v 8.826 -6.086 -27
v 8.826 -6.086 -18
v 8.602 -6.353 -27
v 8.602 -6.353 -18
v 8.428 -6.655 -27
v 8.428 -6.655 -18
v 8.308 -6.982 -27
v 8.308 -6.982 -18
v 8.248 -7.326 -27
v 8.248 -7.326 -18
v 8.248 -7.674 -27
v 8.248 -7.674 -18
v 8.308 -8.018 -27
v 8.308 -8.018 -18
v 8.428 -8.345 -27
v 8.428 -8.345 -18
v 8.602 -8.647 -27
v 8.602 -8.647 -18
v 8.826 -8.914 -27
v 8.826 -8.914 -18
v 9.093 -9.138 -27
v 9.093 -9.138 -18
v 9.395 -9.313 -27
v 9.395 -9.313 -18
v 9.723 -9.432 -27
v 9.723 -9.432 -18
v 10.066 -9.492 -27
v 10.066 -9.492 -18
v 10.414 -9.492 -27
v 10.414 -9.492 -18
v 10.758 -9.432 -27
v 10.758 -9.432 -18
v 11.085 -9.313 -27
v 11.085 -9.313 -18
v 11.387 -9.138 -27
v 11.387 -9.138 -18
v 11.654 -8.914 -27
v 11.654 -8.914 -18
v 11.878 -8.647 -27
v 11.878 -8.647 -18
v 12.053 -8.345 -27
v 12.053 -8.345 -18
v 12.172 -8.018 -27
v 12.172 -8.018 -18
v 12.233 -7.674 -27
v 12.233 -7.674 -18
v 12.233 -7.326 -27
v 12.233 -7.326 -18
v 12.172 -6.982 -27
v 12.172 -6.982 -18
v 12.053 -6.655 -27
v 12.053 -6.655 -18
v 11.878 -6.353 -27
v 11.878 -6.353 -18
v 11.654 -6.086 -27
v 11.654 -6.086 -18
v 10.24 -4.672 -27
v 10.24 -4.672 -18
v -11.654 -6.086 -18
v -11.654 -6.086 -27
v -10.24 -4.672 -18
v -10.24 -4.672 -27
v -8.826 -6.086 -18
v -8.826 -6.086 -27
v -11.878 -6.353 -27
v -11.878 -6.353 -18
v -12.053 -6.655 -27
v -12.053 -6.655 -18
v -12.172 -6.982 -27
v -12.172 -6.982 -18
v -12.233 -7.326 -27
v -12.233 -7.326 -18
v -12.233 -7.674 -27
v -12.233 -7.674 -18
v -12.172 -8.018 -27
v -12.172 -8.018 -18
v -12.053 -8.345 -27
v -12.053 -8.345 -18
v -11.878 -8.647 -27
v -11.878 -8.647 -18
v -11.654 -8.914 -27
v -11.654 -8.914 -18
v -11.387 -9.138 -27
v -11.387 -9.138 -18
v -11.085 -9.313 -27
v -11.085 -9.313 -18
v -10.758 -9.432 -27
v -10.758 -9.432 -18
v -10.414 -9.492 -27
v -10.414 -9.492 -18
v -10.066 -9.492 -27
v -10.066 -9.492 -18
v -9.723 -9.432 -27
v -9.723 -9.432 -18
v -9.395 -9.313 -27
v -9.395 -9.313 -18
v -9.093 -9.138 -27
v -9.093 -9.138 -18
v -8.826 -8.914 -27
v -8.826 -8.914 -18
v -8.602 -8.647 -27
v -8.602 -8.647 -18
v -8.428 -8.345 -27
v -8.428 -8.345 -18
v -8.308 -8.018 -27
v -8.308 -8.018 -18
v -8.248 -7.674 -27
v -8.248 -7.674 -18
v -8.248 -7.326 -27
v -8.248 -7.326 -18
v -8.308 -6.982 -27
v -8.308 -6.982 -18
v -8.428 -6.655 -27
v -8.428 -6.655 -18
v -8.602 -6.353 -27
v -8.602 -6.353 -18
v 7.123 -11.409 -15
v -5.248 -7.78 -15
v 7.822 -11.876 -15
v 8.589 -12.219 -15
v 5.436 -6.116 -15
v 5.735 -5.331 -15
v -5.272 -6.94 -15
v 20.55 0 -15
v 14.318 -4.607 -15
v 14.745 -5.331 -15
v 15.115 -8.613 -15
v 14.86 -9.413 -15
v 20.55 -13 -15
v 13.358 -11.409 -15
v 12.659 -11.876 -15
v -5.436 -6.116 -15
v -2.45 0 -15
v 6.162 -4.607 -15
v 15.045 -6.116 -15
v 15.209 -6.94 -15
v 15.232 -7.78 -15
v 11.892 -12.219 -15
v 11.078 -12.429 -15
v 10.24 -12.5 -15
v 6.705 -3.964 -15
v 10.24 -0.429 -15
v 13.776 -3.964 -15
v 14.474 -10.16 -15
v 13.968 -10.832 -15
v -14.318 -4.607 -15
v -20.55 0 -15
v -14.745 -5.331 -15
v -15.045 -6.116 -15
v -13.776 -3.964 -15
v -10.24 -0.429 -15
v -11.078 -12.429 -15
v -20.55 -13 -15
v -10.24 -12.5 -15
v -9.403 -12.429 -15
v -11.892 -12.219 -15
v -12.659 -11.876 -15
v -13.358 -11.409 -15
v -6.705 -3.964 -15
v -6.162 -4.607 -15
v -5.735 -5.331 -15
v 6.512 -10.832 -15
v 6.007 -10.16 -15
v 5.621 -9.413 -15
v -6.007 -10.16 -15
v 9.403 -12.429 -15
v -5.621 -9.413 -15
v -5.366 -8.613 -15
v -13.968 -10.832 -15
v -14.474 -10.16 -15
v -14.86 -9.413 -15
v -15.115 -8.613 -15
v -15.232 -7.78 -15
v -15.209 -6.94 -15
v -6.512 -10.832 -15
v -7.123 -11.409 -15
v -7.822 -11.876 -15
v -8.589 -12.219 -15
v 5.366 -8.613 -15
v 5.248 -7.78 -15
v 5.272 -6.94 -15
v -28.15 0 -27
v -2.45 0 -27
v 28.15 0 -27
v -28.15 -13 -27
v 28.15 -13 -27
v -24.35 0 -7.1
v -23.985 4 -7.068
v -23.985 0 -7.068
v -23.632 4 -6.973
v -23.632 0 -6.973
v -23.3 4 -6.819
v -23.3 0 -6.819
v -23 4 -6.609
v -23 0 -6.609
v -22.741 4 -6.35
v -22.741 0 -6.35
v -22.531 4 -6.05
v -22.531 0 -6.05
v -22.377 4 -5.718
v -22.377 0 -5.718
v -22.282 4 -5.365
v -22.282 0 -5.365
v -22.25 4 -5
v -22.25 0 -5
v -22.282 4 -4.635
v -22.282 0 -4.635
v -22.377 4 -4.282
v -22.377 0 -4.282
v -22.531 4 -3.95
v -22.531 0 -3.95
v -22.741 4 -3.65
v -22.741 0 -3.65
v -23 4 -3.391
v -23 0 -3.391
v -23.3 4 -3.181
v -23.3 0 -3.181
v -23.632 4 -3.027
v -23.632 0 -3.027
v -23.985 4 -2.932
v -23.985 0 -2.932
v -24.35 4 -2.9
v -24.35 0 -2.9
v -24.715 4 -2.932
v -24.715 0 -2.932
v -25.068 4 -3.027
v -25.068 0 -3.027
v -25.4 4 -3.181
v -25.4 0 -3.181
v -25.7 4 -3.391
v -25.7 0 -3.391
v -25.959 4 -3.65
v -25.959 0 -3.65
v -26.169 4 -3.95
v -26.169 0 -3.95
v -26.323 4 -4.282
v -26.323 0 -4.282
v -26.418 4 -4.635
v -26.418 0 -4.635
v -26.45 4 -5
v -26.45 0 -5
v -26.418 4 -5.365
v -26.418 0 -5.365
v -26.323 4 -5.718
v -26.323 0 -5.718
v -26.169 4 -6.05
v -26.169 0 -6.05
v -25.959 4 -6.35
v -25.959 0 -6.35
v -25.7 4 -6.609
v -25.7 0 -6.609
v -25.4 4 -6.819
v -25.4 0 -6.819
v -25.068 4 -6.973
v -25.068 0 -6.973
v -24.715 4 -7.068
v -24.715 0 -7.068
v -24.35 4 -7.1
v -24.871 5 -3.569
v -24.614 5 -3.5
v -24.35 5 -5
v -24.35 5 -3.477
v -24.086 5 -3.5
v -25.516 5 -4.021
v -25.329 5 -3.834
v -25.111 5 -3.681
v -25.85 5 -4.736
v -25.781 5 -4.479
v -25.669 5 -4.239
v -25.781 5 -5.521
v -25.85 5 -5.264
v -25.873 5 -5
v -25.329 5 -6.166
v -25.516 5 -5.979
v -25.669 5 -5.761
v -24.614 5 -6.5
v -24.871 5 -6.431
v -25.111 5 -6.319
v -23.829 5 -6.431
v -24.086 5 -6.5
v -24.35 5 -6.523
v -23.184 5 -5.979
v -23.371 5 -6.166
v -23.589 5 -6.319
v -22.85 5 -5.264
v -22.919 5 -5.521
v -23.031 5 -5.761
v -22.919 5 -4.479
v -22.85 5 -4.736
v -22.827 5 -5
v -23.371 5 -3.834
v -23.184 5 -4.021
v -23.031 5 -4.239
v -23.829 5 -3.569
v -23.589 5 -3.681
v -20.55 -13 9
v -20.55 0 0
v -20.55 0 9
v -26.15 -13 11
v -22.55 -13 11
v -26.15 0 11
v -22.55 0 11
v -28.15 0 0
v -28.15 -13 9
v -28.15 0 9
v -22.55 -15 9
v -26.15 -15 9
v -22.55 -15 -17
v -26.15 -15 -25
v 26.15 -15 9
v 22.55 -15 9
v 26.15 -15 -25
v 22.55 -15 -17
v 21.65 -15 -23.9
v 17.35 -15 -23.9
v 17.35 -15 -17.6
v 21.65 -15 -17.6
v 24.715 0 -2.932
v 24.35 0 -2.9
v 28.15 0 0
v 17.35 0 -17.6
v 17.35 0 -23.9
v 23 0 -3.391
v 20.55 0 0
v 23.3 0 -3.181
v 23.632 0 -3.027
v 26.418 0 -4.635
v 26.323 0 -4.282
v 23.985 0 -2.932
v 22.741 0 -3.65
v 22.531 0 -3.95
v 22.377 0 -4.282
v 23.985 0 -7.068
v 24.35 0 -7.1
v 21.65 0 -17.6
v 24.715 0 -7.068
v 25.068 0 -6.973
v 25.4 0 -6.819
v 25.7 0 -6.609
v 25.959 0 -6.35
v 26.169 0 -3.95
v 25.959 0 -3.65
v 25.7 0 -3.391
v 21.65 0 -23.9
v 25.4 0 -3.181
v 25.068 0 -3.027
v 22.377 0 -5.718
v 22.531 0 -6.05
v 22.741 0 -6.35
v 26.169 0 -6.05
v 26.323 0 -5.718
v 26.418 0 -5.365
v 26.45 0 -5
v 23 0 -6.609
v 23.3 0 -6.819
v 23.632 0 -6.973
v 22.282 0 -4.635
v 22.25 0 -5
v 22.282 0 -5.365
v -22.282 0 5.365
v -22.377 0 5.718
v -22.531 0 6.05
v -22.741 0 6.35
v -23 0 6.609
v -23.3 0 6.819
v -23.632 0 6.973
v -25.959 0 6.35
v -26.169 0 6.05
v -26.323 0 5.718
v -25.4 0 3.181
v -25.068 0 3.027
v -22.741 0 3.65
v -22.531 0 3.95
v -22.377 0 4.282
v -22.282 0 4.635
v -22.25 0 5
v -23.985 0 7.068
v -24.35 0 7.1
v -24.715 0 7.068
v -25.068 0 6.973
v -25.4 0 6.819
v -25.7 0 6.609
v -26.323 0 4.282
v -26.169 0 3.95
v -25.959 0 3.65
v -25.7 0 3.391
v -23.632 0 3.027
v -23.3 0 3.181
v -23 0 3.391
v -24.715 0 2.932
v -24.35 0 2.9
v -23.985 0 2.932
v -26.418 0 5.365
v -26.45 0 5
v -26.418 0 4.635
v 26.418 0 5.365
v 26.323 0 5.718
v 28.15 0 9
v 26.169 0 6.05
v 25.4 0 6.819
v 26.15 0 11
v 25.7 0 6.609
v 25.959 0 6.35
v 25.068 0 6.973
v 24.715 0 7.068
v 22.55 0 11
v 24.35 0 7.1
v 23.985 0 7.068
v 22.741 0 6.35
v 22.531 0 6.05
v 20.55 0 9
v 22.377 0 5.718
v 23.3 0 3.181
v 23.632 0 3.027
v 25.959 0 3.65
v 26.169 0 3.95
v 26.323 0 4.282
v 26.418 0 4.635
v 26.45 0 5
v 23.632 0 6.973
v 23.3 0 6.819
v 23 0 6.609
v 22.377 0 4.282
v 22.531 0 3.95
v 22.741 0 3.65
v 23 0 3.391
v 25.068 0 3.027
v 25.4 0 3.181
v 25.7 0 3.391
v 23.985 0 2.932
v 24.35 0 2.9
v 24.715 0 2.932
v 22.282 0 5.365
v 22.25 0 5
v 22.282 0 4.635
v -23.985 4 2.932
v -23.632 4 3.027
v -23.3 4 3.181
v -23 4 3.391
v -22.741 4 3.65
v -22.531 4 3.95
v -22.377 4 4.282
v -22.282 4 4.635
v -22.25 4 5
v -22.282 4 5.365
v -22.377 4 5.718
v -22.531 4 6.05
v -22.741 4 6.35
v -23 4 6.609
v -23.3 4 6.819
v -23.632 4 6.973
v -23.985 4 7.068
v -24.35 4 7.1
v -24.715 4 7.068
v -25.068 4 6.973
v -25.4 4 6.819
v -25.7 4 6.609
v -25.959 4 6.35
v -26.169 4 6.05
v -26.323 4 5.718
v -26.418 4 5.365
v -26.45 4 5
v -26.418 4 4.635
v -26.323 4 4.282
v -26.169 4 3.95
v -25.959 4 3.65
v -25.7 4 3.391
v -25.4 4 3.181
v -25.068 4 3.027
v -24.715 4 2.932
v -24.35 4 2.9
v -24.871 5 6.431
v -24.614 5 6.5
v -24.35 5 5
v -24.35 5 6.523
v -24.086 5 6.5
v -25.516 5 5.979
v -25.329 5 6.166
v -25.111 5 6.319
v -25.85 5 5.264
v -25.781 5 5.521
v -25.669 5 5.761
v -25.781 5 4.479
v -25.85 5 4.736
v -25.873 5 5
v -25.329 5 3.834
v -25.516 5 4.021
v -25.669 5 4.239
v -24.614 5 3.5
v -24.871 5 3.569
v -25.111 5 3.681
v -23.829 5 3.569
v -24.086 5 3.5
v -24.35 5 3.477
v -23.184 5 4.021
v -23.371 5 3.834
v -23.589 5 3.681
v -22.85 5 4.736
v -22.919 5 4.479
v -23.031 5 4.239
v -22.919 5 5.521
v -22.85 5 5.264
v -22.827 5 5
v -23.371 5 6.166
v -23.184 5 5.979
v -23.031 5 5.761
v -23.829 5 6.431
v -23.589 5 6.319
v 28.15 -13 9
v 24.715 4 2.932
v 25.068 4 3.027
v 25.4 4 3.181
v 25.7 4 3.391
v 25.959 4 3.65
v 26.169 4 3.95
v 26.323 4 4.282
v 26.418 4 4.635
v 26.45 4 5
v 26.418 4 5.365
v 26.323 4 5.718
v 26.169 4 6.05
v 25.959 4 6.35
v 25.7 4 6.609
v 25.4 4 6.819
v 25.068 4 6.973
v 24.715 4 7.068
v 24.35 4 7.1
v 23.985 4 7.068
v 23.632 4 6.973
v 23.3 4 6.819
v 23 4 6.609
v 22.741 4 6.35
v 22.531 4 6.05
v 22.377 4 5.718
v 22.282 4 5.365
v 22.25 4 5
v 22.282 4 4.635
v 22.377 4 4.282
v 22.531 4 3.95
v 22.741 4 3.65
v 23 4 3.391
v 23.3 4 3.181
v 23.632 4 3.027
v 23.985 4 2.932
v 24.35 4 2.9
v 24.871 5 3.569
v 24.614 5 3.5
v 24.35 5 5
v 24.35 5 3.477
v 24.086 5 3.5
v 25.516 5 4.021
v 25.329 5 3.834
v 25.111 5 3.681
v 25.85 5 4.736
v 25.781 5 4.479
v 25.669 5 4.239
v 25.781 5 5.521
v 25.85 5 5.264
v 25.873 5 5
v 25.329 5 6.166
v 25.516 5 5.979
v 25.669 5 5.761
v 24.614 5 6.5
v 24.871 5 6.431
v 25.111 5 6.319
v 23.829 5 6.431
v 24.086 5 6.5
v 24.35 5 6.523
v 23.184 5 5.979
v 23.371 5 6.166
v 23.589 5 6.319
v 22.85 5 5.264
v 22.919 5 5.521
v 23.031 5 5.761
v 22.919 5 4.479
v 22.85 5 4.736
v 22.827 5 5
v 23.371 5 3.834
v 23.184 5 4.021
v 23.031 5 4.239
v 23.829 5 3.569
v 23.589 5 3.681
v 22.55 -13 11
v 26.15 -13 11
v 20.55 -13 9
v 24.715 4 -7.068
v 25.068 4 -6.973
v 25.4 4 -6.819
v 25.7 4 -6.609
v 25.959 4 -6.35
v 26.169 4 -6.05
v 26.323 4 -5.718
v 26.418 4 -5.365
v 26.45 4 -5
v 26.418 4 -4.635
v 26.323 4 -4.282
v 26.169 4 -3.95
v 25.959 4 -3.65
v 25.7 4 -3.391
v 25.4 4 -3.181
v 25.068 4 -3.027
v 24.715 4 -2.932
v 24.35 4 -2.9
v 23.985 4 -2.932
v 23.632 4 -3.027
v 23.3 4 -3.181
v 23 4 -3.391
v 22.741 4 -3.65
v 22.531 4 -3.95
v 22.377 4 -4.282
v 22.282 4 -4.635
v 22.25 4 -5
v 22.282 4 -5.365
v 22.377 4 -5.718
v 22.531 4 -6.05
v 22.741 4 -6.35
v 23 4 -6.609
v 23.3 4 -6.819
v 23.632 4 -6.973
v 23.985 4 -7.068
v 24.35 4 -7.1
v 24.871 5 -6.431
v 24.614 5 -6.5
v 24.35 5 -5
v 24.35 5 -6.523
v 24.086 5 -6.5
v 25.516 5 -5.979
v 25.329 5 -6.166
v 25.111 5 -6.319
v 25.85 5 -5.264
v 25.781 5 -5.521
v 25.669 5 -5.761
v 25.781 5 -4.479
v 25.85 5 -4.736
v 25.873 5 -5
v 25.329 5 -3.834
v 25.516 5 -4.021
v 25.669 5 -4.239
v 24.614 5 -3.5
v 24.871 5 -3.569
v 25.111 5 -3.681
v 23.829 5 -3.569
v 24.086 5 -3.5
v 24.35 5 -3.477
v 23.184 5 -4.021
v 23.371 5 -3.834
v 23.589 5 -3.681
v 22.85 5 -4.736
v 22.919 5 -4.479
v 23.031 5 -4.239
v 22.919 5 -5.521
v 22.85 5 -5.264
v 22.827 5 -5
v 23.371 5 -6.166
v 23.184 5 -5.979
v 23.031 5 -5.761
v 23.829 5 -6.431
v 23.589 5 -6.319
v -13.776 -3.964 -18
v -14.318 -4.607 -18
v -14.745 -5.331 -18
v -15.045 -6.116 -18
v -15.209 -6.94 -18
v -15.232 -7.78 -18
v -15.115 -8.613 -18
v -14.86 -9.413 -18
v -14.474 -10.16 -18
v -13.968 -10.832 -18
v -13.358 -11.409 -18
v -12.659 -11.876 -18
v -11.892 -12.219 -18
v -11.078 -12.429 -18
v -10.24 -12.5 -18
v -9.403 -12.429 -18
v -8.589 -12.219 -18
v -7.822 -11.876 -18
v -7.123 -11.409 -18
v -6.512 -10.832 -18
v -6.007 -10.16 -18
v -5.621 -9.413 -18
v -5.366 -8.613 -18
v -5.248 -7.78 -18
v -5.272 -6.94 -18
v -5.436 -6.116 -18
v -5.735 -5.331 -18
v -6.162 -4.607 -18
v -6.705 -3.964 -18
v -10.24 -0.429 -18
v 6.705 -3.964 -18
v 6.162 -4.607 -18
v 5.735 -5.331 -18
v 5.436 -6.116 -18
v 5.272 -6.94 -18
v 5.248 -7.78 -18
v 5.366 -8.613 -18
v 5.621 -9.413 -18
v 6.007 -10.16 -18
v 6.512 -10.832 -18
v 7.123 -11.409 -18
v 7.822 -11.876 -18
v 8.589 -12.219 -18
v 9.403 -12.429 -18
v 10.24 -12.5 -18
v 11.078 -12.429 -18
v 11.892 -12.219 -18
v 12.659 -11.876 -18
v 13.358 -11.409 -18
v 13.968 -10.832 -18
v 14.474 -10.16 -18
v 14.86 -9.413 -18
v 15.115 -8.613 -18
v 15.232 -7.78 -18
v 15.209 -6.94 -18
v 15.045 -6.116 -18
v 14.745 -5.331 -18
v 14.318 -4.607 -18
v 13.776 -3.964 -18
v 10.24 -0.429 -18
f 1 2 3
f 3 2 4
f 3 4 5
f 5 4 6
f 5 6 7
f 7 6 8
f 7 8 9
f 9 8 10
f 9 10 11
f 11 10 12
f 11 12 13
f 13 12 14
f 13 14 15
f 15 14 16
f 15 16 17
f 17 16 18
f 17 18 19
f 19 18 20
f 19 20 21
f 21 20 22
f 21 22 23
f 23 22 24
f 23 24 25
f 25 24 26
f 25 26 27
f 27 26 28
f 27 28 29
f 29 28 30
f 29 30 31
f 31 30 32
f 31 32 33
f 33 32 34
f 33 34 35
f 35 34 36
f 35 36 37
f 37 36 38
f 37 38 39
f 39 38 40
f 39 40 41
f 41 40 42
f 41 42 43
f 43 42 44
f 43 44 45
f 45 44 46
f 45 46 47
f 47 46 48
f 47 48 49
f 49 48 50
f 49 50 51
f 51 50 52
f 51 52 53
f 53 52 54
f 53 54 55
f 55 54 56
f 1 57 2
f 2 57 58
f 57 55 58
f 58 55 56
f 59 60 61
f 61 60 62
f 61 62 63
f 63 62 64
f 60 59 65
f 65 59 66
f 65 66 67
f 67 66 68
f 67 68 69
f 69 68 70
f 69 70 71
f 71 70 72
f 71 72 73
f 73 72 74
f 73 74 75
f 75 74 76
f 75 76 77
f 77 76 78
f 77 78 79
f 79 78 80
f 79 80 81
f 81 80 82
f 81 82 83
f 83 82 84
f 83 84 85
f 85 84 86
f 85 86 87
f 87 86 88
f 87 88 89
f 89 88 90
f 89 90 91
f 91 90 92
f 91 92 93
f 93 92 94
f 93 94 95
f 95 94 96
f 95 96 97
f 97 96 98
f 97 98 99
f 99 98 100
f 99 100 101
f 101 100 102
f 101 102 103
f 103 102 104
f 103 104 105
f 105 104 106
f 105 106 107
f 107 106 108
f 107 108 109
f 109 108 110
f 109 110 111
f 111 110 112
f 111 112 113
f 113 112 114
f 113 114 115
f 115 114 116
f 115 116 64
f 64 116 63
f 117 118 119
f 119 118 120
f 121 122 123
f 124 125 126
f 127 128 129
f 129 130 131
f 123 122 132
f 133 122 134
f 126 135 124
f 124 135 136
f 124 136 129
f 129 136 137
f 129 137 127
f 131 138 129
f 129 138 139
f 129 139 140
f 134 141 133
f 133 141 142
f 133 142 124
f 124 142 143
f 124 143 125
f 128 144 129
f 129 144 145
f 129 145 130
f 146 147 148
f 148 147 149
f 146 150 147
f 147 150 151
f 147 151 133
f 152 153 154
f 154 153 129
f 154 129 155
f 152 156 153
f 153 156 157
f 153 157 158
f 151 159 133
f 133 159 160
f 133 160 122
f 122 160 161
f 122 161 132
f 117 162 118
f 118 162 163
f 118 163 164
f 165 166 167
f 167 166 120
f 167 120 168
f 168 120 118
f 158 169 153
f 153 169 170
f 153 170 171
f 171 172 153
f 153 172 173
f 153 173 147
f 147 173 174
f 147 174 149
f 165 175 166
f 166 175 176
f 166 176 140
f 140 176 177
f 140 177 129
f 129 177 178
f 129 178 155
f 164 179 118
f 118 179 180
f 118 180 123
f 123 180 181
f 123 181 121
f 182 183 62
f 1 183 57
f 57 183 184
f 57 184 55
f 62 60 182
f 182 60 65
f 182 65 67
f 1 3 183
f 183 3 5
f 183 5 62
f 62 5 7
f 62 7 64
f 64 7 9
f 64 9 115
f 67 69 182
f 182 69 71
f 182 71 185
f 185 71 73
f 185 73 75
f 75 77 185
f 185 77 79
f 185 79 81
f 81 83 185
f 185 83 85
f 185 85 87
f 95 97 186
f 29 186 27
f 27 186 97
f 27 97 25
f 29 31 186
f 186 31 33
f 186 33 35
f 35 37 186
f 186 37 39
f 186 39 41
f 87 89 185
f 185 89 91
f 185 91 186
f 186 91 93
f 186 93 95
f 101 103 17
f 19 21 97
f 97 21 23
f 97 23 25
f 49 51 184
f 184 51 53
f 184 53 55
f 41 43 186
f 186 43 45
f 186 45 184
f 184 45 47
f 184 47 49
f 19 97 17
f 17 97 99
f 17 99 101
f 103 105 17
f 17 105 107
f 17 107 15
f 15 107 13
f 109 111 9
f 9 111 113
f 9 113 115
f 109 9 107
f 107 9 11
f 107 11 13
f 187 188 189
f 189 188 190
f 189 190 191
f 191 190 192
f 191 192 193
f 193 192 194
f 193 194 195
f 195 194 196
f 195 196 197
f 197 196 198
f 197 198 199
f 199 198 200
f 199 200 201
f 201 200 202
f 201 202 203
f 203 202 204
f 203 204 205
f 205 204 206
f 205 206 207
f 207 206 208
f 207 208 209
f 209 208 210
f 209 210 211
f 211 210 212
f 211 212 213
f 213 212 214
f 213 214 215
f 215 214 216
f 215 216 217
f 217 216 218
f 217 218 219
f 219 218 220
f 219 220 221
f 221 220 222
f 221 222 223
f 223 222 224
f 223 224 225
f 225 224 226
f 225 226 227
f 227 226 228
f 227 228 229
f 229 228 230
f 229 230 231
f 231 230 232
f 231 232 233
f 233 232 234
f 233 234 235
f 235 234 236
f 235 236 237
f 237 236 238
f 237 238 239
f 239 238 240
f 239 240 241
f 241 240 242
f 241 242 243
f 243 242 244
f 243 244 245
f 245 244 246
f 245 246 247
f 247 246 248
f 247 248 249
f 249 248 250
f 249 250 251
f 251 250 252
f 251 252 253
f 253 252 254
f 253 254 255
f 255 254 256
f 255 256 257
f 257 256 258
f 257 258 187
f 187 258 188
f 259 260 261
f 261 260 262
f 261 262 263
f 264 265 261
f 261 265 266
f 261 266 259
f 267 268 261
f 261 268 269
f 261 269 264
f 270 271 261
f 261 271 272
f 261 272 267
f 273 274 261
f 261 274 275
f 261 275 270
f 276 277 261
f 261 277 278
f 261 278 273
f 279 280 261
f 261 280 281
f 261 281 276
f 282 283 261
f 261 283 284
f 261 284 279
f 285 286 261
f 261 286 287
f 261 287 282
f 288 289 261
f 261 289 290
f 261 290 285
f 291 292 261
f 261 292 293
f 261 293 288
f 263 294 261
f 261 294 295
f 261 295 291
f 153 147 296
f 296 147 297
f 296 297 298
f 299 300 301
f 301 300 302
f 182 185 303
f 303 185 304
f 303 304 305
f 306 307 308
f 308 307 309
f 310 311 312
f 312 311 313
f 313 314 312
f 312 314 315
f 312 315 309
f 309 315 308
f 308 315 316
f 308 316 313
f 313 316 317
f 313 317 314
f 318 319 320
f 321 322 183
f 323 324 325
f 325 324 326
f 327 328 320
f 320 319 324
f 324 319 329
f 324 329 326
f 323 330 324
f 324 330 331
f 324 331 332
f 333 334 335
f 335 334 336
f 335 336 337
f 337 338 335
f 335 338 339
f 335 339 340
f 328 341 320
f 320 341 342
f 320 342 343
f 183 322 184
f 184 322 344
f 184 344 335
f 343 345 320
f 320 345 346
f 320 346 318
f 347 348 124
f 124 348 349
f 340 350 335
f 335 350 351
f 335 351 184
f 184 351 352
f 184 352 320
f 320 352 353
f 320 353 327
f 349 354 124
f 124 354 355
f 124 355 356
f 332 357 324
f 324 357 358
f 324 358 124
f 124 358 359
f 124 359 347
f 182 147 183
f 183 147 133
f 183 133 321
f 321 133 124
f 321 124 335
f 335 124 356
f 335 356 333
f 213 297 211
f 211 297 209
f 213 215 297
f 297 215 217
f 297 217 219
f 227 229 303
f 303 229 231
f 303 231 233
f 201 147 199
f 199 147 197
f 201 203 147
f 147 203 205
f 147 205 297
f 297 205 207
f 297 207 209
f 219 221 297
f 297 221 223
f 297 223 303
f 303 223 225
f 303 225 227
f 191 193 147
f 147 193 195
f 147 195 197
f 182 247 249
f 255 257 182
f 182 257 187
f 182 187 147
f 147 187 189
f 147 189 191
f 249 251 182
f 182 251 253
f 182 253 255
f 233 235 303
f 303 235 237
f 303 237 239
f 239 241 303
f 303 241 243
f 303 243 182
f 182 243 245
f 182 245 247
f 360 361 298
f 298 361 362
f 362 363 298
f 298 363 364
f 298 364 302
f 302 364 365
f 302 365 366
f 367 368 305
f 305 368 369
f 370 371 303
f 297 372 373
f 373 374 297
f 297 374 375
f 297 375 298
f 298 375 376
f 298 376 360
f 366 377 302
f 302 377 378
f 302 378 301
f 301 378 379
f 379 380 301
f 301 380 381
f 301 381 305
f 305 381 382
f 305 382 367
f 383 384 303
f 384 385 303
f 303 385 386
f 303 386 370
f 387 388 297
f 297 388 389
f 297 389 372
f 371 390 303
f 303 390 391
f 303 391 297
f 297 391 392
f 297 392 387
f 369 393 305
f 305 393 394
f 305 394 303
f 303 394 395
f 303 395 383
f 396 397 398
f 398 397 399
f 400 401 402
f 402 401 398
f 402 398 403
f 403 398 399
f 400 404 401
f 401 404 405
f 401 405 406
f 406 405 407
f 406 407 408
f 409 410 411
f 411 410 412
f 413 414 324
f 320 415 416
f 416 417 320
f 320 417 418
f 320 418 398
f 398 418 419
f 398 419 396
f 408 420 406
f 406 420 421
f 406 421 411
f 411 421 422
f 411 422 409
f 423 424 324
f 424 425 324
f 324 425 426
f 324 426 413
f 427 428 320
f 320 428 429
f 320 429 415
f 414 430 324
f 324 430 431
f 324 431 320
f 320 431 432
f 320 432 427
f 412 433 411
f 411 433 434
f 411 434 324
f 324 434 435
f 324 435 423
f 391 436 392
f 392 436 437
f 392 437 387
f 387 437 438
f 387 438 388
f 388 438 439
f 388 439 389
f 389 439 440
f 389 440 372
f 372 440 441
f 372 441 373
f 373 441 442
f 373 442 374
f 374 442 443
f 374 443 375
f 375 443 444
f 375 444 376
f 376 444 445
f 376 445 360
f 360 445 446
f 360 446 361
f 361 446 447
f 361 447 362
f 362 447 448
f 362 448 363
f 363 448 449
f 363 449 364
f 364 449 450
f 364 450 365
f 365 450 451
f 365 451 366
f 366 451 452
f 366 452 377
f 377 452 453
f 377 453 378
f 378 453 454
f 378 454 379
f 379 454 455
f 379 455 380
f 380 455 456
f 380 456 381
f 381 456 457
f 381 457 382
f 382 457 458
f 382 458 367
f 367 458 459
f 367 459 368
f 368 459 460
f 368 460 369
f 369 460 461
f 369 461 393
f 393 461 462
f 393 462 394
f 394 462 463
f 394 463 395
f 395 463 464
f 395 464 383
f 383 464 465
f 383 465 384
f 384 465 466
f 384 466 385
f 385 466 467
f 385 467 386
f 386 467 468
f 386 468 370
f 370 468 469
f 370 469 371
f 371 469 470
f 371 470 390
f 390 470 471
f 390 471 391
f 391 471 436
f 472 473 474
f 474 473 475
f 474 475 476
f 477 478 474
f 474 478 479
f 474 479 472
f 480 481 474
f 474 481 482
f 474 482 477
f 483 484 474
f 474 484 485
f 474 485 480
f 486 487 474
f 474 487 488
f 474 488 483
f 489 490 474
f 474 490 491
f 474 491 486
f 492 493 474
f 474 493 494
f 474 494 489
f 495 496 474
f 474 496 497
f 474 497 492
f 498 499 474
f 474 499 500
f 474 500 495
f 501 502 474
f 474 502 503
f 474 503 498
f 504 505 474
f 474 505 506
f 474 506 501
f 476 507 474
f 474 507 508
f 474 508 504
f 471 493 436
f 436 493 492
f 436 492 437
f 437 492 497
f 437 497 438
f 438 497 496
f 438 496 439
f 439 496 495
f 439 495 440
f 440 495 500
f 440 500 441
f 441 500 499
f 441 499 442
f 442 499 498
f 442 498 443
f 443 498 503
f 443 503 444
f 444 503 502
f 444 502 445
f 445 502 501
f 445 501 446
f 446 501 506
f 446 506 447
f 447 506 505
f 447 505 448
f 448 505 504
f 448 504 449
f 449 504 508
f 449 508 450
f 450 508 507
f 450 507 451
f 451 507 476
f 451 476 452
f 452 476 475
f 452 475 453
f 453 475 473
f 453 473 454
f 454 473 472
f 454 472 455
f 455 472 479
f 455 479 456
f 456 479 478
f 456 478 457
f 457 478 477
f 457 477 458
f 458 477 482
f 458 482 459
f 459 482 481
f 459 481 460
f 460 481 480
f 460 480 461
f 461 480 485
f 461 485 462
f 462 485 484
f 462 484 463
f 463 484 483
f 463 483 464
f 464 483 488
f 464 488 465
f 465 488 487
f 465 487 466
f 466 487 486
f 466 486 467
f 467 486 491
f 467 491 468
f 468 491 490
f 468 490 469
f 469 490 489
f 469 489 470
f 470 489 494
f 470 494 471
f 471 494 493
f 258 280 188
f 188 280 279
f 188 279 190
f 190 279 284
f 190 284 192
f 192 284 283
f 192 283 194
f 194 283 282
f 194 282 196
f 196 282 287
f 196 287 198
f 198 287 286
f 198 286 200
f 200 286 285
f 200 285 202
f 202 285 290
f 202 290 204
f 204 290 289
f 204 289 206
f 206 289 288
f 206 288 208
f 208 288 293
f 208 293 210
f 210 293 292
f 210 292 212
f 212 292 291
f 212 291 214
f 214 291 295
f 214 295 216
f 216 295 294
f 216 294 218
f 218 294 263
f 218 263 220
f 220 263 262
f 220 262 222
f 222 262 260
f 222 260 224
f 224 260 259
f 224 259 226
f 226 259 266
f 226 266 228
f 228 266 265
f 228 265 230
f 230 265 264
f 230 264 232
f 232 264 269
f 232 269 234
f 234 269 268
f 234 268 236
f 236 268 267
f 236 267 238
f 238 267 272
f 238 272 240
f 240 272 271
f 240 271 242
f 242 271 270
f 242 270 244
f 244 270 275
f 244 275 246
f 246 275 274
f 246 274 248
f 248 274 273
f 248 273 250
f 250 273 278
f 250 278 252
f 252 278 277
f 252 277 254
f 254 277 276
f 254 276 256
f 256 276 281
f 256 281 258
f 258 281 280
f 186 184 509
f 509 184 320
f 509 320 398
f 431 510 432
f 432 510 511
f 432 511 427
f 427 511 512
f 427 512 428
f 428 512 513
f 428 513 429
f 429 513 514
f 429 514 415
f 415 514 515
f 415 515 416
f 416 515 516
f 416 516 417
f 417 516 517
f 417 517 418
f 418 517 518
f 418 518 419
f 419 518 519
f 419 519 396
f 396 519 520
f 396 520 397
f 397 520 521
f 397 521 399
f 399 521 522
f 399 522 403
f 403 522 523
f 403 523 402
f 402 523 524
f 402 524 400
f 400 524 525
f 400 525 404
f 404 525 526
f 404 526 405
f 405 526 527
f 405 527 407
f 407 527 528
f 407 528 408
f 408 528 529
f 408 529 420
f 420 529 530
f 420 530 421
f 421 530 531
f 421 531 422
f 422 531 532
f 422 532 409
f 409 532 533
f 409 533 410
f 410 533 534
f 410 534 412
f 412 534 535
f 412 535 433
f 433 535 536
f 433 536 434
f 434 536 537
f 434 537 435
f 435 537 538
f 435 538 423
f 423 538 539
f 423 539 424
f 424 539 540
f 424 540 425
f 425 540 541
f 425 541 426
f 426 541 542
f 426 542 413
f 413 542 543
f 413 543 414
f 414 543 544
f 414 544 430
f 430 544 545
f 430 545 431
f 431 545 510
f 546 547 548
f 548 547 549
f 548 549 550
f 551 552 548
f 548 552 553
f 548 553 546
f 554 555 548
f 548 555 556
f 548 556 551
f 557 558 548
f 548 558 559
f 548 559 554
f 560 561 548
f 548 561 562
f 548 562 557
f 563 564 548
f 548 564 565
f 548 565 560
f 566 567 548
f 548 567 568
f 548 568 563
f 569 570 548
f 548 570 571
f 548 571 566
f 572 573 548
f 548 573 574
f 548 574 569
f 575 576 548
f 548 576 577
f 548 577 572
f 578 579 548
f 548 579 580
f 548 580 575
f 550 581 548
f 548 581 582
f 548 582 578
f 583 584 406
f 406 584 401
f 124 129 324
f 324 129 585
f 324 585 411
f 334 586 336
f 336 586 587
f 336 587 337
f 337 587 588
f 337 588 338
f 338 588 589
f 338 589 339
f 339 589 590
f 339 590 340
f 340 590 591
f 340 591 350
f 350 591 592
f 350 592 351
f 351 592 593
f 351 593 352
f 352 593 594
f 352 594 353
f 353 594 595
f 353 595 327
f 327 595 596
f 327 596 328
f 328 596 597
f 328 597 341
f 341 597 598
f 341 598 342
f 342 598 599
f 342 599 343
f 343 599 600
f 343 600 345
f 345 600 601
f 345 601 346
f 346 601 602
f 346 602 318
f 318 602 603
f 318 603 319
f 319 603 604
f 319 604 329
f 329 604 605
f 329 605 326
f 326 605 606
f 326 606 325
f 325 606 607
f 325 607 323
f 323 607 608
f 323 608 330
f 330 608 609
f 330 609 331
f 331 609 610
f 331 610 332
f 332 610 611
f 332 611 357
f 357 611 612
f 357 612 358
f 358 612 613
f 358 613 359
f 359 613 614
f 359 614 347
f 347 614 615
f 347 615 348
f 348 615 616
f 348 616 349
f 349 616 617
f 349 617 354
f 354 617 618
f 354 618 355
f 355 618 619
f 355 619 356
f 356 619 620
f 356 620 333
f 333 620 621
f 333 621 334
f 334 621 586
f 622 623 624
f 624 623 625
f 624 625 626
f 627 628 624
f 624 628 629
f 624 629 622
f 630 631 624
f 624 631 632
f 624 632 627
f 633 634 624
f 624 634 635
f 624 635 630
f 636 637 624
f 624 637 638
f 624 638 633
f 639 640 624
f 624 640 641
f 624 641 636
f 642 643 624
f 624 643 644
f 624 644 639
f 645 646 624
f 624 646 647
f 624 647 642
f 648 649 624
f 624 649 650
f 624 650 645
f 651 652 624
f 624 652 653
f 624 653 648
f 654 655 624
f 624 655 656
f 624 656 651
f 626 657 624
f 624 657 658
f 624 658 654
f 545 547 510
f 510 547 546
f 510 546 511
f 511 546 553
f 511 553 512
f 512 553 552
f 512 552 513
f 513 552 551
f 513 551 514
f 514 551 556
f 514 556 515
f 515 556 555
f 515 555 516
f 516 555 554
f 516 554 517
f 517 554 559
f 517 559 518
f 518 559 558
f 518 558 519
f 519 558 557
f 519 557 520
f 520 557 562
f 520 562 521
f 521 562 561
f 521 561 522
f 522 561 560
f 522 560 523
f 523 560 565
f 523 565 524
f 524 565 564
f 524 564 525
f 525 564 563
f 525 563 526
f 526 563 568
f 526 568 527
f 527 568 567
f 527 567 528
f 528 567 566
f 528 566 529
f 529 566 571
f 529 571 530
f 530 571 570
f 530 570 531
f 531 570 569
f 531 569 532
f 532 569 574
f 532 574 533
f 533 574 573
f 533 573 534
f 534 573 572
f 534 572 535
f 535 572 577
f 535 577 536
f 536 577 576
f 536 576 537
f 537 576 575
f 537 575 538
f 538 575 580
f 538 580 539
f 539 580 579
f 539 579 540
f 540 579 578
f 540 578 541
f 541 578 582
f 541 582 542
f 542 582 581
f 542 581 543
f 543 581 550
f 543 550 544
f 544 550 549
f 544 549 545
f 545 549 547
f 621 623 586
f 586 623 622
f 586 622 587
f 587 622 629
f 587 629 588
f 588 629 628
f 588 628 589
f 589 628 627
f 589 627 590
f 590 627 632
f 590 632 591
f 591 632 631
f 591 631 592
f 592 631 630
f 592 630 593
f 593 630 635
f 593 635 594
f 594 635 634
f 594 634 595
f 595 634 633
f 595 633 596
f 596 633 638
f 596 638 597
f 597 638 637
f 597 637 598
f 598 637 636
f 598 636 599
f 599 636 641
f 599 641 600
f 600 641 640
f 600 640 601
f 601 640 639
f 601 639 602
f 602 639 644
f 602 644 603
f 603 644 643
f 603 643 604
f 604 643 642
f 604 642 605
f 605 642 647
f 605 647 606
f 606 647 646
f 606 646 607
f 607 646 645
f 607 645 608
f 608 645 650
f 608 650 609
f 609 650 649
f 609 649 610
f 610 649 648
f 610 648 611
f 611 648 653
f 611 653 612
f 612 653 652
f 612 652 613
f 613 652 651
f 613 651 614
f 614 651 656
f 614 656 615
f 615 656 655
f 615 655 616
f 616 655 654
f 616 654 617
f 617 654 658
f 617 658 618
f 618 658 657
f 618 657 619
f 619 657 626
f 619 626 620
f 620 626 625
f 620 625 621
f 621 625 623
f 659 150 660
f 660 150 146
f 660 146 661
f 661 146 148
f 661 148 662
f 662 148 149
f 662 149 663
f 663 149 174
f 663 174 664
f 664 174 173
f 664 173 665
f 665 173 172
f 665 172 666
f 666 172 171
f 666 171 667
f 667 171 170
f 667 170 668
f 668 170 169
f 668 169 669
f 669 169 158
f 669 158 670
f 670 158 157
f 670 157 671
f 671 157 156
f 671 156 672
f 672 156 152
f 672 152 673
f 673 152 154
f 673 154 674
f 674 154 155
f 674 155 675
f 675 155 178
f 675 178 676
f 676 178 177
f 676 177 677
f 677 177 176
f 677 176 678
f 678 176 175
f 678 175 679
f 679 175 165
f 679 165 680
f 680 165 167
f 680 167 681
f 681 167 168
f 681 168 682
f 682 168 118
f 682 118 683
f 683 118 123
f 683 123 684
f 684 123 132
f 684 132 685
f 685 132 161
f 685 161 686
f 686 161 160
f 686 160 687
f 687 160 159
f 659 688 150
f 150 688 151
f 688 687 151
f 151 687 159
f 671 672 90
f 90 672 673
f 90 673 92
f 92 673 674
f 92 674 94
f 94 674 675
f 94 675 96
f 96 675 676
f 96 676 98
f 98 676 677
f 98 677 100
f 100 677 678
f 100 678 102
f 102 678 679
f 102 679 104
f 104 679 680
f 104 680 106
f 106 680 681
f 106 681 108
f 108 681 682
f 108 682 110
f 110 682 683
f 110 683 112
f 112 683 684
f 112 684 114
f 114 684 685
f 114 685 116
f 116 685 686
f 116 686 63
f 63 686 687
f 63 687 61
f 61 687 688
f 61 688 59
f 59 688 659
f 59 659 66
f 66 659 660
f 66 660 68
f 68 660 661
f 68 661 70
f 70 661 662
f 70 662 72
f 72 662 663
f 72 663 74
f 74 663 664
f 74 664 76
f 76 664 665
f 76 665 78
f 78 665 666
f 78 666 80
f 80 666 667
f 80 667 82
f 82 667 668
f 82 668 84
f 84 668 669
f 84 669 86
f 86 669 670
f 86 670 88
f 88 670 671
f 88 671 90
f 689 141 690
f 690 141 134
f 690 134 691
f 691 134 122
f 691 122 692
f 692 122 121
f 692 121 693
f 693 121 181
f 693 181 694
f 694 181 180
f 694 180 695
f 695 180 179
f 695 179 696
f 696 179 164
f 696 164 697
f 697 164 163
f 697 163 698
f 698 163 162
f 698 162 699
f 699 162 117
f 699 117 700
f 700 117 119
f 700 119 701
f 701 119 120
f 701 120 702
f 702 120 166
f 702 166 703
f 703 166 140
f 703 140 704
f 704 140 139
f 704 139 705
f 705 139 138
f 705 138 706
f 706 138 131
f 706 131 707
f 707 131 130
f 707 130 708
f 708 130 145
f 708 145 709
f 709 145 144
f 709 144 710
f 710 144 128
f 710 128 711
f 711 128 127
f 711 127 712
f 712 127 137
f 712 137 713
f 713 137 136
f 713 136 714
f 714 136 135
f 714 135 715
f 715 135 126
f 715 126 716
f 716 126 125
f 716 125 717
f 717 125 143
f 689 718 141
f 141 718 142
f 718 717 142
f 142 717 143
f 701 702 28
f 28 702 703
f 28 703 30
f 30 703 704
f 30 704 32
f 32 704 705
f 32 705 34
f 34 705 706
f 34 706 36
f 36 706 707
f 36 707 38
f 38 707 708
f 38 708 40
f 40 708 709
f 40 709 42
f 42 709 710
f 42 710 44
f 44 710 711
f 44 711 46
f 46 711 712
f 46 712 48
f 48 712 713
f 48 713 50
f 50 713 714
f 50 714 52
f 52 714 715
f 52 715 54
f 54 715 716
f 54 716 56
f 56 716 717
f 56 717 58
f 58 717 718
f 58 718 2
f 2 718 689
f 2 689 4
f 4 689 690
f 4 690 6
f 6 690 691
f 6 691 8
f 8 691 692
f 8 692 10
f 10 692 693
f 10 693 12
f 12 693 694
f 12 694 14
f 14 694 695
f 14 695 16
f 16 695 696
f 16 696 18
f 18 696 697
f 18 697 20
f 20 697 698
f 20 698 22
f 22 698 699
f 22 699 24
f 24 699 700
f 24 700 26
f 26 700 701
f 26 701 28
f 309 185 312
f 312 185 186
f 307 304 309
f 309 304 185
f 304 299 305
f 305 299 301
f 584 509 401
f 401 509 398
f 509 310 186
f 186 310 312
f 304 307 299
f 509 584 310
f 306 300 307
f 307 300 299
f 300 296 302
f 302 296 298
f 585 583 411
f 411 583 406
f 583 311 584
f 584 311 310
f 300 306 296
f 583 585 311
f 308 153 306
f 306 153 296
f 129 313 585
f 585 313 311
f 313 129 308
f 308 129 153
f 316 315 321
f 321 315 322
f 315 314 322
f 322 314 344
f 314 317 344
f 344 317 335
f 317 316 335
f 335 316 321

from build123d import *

# Parameters (mm, degrees)
SKETCH2_R             = 2.1
BOSS_EXTRUDE1_DEPTH   = 5
BOSS_EXTRUDE1_2_DEPTH = 5
BOSS_EXTRUDE1_3_DEPTH = 5
BOSS_EXTRUDE1_4_DEPTH = 5
SKETCH3_W             = 7.6
SKETCH3_H             = 26
BOSS_EXTRUDE2_DEPTH   = 15
CHAMFER1_SIZE         = 1
CHAMFER1_SIZE2        = 0.577350269
CHAMFER1_PART_2_SIZE  = 1
CHAMFER1_PART_2_SIZE2 = 0.577350269
CHAMFER2_SIZE         = 1
CHAMFER2_SIZE2        = 0.577350269
CHAMFER2_PART_2_SIZE  = 1
CHAMFER2_PART_2_SIZE2 = 0.577350269
SKETCH4_W             = 56.3
SKETCH4_H             = 12
BOSS_EXTRUDE3_DEPTH   = 15
CUT_EXTRUDE1_DEPTH    = 42.151215049
CUT_EXTRUDE2_DEPTH    = 3
CHAMFER7_SIZE         = 2
SKETCH7_W             = 4.3
SKETCH7_H             = 6.3
CUT_EXTRUDE3_DEPTH    = 42.790220148


with BuildPart() as part:
    # Sketch2 → Boss-Extrude1 (new body)
    with BuildSketch(Plane(origin=(0, 0, 0), x_dir=(1, 0, 0), z_dir=(0, 1, 0))):
        with Locations(Location((-24.35, 5, 0), (0, 0, 270))):
            Circle(SKETCH2_R)
    extrude(amount=BOSS_EXTRUDE1_DEPTH)



with BuildPart() as body_2:
    # Sketch2 → Boss-Extrude1 2 (new body)
    with BuildSketch(Plane(origin=(0, 0, 0), x_dir=(1, 0, 0), z_dir=(0, 1, 0))):
        with Locations(Location((-24.35, -5, 0), (0, 0, 270))):
            Circle(SKETCH2_R)
    extrude(amount=BOSS_EXTRUDE1_2_DEPTH)


with BuildPart() as body_3:
    # Sketch2 → Boss-Extrude1 3 (new body)
    with BuildSketch(Plane(origin=(0, 0, 0), x_dir=(1, 0, 0), z_dir=(0, 1, 0))):
        with Locations(Location((24.35, -5, 0), (0, 0, 90))):
            Circle(SKETCH2_R)
    extrude(amount=BOSS_EXTRUDE1_3_DEPTH)


with BuildPart() as body_4:
    # Sketch2 → Boss-Extrude1 4 (new body)
    with BuildSketch(Plane(origin=(0, 0, 0), x_dir=(1, 0, 0), z_dir=(0, 1, 0))):
        with Locations(Location((24.35, 5, 0), (0, 0, 90))):
            Circle(SKETCH2_R)
    extrude(amount=BOSS_EXTRUDE1_4_DEPTH)


with BuildPart() as part_1:
    add(part.part)

    add(body_2.part)  # Boss-Extrude2 merges body 2

    add(body_3.part)  # Boss-Extrude2 merges body 3

    add(body_4.part)  # Boss-Extrude2 merges body 4
    # Sketch3 → Boss-Extrude2 (add)
    with BuildSketch(Plane(origin=(0, 0, 0), x_dir=(1, 0, 0), z_dir=(0, 1, 0))):
        with Locations((-24.35, 2)):
            Rectangle(SKETCH3_W, SKETCH3_H)
        with Locations((24.35, 2)):
            Rectangle(SKETCH3_W, SKETCH3_H)
    extrude(amount=-BOSS_EXTRUDE2_DEPTH)

    # Chamfer1
    chamfer1_edges = [part_1.edges().sort_by_distance(p)[0] for p in [
        (-24.35, 5, 2.9),
    ]]
    chamfer1_side = [part_1.faces().sort_by_distance(p)[0] for p in [
        (-24.35, 2.5, 2.9),
    ]]
    chamfer(chamfer1_edges, length=CHAMFER1_SIZE, length2=CHAMFER1_SIZE2, reference=chamfer1_side[0])

    # Chamfer1 part 2
    chamfer1_part_2_edges = [part_1.edges().sort_by_distance(p)[0] for p in [
        (-24.35, 5, -7.1),
    ]]
    chamfer1_part_2_side = [part_1.faces().sort_by_distance(p)[0] for p in [
        (-24.35, 2.5, -7.1),
    ]]
    chamfer(chamfer1_part_2_edges, length=CHAMFER1_PART_2_SIZE, length2=CHAMFER1_PART_2_SIZE2, reference=chamfer1_part_2_side[0])

    # Chamfer2
    chamfer2_edges = [part_1.edges().sort_by_distance(p)[0] for p in [
        (24.35, 5, -2.9),
    ]]
    chamfer2_side = [part_1.faces().sort_by_distance(p)[0] for p in [
        (24.35, 2.5, -2.9),
    ]]
    chamfer(chamfer2_edges, length=CHAMFER2_SIZE, length2=CHAMFER2_SIZE2, reference=chamfer2_side[0])

    # Chamfer2 part 2
    chamfer2_part_2_edges = [part_1.edges().sort_by_distance(p)[0] for p in [
        (24.35, 5, 7.1),
    ]]
    chamfer2_part_2_side = [part_1.faces().sort_by_distance(p)[0] for p in [
        (24.35, 2.5, 7.1),
    ]]
    chamfer(chamfer2_part_2_edges, length=CHAMFER2_PART_2_SIZE, length2=CHAMFER2_PART_2_SIZE2, reference=chamfer2_part_2_side[0])

    # Sketch4 → Boss-Extrude3 (add)
    with BuildSketch(Plane(origin=(0, 0, 0), x_dir=(1, 0, 0), z_dir=(0, 1, 0))):
        with Locations((0, 21)):
            Rectangle(SKETCH4_W, SKETCH4_H)
    extrude(amount=-BOSS_EXTRUDE3_DEPTH)

    # Sketch5 → Cut-Extrude1 (cut, through all)
    with BuildSketch(Plane.XY.offset(-15)):
        with BuildLine():
            Line((-11.654372972, -6.085786438), (-10.24015941, -4.671572875))
            Line((-10.24015941, -4.671572875), (-8.825945848, -6.085786438))
            ThreePointArc((-8.825945848, -6.085786438), (-10.24015941, -9.5), (-11.654372972, -6.085786438))
        make_face()
        with BuildLine():
            ThreePointArc((11.654372972, -6.085786438), (10.24015941, -9.5), (8.825945848, -6.085786438))
            Line((8.825945848, -6.085786438), (10.24015941, -4.671572875))
            Line((10.24015941, -4.671572875), (11.654372972, -6.085786438))
        make_face()
    extrude(amount=-CUT_EXTRUDE1_DEPTH, mode=Mode.SUBTRACT)

    # Sketch6 → Cut-Extrude2 (cut)
    with BuildSketch(Plane.XY.offset(-15)):
        with BuildLine():
            Line((-6.704625504, -3.964466094), (-10.24015941, -0.428932188))
            Line((-10.24015941, -0.428932188), (-13.775693316, -3.964466094))
            ThreePointArc((-13.775693316, -3.964466094), (-10.24015941, -12.5), (-6.704625504, -3.964466094))
        make_face()
        with BuildLine():
            Line((13.775693316, -3.964466094), (10.24015941, -0.428932188))
            Line((10.24015941, -0.428932188), (6.704625504, -3.964466094))
            ThreePointArc((6.704625504, -3.964466094), (10.24015941, -12.5), (13.775693316, -3.964466094))
        make_face()
    extrude(amount=-CUT_EXTRUDE2_DEPTH, mode=Mode.SUBTRACT)

    # Chamfer7
    chamfer7_edges = [part_1.edges().sort_by_distance(p)[0] for p in [
        (0, -15, -15),
        (28.15, -15, -8),
        (0, -15, -27),
        (24.35, -15, 11),
        (28.15, -7.5, 11),
        (20.55, -15, -2),
        (20.55, -7.5, 11),
        (-20.55, -15, -2),
        (-24.35, -15, 11),
        (-20.55, -7.5, 11),
        (-28.15, -15, -8),
        (-28.15, -7.5, 11),
    ]]
    chamfer(chamfer7_edges, length=CHAMFER7_SIZE)

    # Sketch7 → Cut-Extrude3 (cut, through all)
    with BuildSketch(Plane(origin=(0, 0, 0), x_dir=(1, 0, 0), z_dir=(0, 1, 0))):
        with Locations((19.5, 20.75)):
            Rectangle(SKETCH7_W, SKETCH7_H)
    extrude(amount=-CUT_EXTRUDE3_DEPTH, mode=Mode.SUBTRACT)


solid = part_1.part
